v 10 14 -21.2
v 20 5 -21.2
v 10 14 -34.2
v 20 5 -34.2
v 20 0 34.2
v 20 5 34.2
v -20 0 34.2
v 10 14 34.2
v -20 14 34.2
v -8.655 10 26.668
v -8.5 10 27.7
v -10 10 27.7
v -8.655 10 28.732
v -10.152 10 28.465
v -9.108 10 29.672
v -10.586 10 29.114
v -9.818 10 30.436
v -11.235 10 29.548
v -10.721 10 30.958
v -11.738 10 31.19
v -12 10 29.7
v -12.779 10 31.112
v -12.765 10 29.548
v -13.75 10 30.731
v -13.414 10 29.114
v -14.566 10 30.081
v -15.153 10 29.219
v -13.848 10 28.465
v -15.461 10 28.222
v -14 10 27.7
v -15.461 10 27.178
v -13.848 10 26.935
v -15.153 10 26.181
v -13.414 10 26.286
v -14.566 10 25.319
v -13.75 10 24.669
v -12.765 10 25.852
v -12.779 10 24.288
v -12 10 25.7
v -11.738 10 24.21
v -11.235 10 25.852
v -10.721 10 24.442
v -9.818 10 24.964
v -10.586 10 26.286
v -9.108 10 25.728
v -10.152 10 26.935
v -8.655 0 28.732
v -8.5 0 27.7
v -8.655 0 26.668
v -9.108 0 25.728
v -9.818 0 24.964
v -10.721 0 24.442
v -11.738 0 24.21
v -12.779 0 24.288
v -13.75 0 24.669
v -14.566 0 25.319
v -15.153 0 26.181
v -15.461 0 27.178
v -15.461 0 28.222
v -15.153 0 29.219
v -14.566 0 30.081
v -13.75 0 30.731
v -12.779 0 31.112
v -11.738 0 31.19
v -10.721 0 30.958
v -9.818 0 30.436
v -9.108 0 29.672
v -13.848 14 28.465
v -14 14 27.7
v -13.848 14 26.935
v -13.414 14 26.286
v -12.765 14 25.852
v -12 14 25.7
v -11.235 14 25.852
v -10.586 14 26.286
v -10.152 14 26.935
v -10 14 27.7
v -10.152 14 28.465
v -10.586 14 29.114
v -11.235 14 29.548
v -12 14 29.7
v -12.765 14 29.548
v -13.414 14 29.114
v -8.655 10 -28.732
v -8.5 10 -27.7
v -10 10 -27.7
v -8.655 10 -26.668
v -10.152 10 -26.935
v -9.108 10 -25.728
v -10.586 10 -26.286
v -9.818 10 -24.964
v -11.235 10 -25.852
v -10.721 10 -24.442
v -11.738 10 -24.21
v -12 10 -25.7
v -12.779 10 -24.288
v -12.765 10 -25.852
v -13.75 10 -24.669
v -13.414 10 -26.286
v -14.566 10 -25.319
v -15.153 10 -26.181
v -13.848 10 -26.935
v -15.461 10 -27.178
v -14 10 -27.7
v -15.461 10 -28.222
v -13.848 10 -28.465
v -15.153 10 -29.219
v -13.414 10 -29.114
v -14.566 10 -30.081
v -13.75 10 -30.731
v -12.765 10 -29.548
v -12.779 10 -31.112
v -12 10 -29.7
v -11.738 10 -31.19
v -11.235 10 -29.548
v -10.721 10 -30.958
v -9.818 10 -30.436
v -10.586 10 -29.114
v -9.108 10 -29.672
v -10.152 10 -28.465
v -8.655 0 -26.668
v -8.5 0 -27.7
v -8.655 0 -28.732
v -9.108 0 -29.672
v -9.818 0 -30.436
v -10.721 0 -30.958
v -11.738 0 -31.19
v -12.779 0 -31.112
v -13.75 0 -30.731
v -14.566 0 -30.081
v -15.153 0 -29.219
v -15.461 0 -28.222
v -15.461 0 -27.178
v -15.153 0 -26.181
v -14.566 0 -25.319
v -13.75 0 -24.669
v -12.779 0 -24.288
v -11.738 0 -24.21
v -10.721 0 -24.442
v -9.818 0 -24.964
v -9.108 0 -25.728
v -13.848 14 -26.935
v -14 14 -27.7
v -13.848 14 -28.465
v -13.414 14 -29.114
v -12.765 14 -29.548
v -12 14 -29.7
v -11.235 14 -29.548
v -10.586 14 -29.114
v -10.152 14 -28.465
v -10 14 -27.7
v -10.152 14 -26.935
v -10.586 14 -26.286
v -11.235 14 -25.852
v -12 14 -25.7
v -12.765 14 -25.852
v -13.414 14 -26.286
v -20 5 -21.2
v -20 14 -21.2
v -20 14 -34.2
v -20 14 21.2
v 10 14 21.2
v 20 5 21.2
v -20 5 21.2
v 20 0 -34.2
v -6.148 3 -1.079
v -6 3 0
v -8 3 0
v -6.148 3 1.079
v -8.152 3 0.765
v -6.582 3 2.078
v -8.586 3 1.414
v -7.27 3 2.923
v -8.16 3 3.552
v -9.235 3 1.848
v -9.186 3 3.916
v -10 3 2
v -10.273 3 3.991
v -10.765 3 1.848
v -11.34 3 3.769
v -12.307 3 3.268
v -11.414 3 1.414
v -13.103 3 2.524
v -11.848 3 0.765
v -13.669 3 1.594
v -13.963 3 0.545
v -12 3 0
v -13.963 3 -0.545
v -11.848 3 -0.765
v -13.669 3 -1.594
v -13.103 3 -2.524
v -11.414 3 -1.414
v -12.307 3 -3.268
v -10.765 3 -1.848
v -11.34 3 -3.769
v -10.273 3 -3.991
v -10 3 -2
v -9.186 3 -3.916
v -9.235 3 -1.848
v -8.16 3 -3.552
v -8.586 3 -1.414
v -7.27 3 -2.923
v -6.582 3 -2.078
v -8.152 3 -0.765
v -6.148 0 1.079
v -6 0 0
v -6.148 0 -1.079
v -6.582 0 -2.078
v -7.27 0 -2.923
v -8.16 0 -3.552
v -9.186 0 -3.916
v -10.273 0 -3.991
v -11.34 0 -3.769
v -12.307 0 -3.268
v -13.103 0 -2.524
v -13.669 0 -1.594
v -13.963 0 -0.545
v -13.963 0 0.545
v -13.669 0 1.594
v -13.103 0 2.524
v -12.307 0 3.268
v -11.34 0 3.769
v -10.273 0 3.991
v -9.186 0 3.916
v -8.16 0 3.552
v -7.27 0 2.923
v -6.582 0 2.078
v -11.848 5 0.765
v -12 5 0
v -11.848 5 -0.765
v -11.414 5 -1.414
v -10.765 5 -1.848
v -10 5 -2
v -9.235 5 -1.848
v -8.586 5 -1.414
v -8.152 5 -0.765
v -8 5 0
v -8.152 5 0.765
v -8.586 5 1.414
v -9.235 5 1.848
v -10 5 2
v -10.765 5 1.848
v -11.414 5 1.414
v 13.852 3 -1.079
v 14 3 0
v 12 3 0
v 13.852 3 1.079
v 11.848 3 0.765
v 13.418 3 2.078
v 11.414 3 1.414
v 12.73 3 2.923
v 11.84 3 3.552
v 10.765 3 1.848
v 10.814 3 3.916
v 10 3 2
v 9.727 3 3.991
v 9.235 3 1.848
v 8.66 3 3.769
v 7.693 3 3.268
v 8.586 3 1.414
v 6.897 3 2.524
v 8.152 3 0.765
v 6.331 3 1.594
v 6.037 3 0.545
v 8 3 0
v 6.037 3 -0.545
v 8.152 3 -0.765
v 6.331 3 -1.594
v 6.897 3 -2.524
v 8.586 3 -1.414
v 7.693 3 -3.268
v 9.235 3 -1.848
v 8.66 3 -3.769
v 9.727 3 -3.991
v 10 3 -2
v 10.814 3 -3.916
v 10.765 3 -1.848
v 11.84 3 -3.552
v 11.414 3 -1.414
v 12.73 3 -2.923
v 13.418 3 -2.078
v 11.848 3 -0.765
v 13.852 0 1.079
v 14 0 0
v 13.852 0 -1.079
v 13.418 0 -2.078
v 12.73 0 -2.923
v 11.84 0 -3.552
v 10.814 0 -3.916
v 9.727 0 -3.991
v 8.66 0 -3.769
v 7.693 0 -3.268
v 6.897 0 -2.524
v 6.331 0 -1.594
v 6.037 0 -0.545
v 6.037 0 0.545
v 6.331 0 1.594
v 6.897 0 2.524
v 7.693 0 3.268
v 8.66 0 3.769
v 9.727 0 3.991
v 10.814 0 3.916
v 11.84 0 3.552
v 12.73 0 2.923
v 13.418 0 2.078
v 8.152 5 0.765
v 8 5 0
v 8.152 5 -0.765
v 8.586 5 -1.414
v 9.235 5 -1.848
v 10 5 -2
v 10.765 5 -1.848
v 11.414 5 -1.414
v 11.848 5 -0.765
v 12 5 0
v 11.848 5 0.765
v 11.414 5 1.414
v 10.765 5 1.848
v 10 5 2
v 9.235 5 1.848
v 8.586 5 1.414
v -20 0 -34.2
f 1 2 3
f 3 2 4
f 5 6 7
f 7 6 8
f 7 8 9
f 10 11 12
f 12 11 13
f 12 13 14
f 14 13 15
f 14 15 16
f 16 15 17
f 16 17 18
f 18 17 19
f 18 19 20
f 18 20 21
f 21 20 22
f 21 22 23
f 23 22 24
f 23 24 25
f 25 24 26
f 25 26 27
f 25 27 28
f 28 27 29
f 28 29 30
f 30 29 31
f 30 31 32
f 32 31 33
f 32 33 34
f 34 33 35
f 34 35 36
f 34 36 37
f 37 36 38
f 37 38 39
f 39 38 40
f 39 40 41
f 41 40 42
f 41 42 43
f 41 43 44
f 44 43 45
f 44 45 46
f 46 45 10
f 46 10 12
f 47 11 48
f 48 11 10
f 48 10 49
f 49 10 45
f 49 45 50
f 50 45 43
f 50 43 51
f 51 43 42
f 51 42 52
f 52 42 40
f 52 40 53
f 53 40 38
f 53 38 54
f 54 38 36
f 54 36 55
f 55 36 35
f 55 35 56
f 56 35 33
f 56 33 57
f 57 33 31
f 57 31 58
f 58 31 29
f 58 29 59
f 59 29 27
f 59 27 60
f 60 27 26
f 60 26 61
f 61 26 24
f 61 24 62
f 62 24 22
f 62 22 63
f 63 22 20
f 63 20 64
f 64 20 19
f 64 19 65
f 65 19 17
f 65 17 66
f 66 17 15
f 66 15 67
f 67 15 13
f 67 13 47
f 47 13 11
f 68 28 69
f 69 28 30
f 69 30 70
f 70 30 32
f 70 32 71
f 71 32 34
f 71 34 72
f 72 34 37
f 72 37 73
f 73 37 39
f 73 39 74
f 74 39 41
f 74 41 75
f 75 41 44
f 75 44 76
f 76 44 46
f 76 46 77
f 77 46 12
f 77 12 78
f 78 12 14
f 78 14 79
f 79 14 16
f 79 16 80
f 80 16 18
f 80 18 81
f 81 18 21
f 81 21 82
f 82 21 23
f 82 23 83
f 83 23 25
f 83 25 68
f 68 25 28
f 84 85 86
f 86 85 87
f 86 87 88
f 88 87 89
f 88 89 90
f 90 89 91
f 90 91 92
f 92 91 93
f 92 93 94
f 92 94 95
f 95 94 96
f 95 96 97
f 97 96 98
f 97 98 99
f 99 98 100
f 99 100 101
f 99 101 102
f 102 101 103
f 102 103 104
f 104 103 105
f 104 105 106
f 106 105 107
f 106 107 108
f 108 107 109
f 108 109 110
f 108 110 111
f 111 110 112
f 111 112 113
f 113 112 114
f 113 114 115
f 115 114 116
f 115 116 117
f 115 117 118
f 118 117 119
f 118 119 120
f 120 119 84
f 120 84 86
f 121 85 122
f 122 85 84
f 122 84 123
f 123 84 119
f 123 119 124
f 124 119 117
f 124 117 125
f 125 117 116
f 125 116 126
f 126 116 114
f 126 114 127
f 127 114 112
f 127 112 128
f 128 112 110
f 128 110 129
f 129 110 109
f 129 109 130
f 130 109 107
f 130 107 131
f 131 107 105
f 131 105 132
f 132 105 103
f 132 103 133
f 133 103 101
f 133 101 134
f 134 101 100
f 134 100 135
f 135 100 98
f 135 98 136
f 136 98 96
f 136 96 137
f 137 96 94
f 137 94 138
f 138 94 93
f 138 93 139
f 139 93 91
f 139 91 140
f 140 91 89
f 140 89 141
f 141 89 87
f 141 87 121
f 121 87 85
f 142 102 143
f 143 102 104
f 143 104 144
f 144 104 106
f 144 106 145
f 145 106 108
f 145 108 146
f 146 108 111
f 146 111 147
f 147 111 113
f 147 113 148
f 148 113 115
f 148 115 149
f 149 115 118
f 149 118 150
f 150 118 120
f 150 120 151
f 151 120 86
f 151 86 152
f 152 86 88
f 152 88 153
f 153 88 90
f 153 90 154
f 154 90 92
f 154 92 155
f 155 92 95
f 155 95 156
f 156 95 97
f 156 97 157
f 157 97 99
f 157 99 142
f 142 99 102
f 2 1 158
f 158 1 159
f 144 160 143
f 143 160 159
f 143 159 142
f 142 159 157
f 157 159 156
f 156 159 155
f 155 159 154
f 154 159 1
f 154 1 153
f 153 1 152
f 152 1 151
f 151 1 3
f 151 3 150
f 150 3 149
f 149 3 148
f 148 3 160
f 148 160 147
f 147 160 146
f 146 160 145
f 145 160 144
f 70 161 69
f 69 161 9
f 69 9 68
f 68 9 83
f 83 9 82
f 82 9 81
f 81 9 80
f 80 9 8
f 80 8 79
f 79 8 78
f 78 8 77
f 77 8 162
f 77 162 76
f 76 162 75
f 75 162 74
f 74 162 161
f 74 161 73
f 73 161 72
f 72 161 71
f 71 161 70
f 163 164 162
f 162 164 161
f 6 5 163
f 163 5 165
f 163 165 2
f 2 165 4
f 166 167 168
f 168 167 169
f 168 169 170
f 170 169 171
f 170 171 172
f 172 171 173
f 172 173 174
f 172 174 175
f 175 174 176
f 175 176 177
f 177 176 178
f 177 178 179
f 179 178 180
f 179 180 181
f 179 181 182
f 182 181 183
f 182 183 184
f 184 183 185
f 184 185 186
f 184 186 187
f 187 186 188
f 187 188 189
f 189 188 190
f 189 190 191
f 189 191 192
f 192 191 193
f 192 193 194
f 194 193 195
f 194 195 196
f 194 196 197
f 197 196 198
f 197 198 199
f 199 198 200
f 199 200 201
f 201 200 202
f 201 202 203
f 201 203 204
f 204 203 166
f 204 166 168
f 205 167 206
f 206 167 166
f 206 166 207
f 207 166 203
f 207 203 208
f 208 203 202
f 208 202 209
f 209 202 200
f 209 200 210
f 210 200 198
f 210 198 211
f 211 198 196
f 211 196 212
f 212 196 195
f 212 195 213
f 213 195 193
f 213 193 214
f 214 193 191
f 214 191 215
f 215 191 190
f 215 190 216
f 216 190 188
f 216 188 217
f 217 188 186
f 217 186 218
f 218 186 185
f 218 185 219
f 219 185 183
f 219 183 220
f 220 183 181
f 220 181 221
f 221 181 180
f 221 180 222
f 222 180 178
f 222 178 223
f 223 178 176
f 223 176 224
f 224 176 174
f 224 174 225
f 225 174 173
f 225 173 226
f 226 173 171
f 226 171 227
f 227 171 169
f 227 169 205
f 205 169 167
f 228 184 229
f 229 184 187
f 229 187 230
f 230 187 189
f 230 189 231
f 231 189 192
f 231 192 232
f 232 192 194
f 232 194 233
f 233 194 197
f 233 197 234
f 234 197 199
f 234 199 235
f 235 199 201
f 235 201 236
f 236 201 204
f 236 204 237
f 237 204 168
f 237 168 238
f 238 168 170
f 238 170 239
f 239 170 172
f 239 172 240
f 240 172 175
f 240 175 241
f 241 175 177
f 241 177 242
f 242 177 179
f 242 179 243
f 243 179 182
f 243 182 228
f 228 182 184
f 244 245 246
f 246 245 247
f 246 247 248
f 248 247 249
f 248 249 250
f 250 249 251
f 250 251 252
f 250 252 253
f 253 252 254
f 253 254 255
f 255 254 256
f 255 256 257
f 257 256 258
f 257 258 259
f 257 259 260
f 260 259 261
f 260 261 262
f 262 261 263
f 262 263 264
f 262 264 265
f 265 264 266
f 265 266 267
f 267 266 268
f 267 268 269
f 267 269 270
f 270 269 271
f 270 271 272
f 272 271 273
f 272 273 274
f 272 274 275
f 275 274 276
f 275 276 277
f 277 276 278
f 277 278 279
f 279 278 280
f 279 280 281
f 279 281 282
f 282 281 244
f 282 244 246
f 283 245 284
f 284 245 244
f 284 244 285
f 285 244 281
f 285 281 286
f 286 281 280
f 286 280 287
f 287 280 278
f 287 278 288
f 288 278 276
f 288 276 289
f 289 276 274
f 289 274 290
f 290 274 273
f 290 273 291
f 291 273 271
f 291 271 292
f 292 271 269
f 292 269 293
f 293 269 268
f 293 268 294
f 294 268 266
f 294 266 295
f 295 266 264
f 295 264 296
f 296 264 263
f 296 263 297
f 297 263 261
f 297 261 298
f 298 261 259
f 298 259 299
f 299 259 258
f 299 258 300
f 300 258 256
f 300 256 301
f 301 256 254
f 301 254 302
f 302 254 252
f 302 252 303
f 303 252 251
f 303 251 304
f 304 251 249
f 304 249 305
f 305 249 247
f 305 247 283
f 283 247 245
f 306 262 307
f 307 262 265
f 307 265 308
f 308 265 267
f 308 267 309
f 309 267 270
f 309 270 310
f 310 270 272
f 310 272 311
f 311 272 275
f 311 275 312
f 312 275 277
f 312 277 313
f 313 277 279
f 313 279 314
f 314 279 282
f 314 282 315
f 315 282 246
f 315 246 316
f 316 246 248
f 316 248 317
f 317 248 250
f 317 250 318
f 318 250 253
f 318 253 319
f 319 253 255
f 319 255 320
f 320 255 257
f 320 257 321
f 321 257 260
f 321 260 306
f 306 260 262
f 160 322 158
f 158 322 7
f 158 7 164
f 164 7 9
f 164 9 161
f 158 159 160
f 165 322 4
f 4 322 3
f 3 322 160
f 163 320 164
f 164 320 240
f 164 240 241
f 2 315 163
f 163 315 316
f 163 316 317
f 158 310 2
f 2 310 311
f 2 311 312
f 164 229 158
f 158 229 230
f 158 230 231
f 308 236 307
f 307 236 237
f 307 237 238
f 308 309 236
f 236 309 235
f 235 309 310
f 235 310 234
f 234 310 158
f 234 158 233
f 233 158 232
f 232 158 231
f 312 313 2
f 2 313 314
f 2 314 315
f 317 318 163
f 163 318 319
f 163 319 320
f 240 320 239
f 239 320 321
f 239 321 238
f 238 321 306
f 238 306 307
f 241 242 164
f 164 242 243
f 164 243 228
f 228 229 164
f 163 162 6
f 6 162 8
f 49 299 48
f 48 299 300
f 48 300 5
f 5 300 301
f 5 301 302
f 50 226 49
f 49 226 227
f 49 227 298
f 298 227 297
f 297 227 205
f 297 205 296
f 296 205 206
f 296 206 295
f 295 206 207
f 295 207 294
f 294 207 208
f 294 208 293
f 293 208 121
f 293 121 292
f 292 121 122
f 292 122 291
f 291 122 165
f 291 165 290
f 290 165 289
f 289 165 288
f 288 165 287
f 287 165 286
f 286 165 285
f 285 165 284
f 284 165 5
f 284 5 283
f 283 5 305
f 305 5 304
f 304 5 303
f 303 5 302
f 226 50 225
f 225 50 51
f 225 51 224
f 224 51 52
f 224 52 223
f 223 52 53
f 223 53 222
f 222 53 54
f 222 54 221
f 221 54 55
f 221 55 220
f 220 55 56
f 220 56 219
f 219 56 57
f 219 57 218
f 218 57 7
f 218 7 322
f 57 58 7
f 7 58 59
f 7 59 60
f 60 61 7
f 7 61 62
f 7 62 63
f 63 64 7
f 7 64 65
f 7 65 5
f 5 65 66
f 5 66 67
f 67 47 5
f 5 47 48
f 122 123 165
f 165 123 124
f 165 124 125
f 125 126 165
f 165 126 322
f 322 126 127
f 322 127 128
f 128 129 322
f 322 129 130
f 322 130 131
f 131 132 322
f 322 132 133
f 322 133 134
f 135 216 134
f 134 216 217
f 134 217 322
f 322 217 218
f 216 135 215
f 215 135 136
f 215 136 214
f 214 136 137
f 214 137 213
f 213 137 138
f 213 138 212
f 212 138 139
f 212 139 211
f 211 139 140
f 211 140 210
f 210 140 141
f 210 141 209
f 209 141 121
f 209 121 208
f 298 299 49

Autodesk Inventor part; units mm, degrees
ref_plane "YZ Plane" through (0, 0, 0) normal (1, 0, 0) x (0, 1, 0)
ref_plane "XZ Plane" through (0, 0, 0) normal (0, 1, 0) x (-1, 0, 0)
ref_plane "XY Plane" through (0, 0, 0) normal (0, 0, 1) x (1, 0, 0)
sketch "Skizze1" plane through (0, 0, 0) normal (0, 1, 0) x (-1, 0, 0)
  line L0 (-20, 34.2) -> (20, 34.2)
  line L1 (20, 34.2) -> (20, -34.2)
  line L2 (20, -34.2) -> (-20, -34.2)
  line L3 (-20, -34.2) -> (-20, 34.2)
  line L4 (-20, 34.2) -> (20, -34.2) construction
  line L5 (20, 34.2) -> (-20, -34.2) construction
  point P0 (0, 0)
  dimension "d0" = 40
  dimension "d1" = 68.4
extrude "Extrusion1" add sketch "Skizze1" along normal blind 5
sketch "Skizze5" plane through (0, 0, 0) normal (0, -1, 0) x (1, 0, 0)
  line L0 (20, 34.2) -> (-20, 34.2) projected
  line L1 (-20, 34.2) -> (-20, -34.2) projected
  line L2 (-20, -34.2) -> (20, -34.2) projected
  line L3 (20, -34.2) -> (20, 34.2) projected
  line L4 (32.3204, 0) -> (-38.6965, 0) construction
  point P0 (0, 0)
  point P1 (-10, 0)
  point P2 (10, 0)
  dimension "d32" = 10
  dimension "d33" = 20
hole "Bohrung3" at (-10, 0, 0) at (10, 0, 0) direction (0, 1, 0) diameter 4 end through all counterbore diameter 8 counterbore depth 3
sketch "Skizze6" plane through (0, 5, 0) normal (0, 1, 0) x (1, 0, 0)
  circle A0 centre (-10, 0) radius 2 projected
  circle A1 centre (10, 0) radius 2 projected
  line L0 (-20, -34.2) -> (20, -34.2) projected
  line L1 (20, -34.2) -> (20, 34.2) projected
  line L2 (20, 34.2) -> (-20, 34.2) projected
  line L3 (-20, 34.2) -> (-20, -34.2) projected
  line L4 (-20, 34.2) -> (10, 34.2)
  line L5 (10, 34.2) -> (10, 21.2)
  line L6 (10, 21.2) -> (-20, 21.2)
  line L7 (-20, 21.2) -> (-20, 34.2)
  line L8 (-35, 0) -> (35, 0) projected
  line L9 (-20, -34.2) -> (10, -34.2)
  line L10 (10, -34.2) -> (10, -21.2)
  line L11 (10, -21.2) -> (-20, -21.2)
  line L12 (-20, -21.2) -> (-20, -34.2)
  point P0 (0, 0)
  dimension "d41" = 30
  dimension "d42" = 13
extrude "Extrusion3" add sketch "Skizze6" along normal blind 9 contours L3 L2 L5 L6 | L11 L10 L0 L3
sketch "Skizze8" plane through (0, 0, 0) normal (0, -1, 0) x (1, 0, 0)
  line L0 (-20, 34.2) -> (10, 34.2) projected
  line L1 (10, 34.2) -> (10, 21.2) projected
  line L2 (10, 21.2) -> (-20, 21.2) projected
  line L3 (-20, 21.2) -> (-20, 34.2) projected
  line L4 (-20, -34.2) -> (-20, -21.2) projected
  line L5 (-20, -21.2) -> (10, -21.2) projected
  line L6 (10, -21.2) -> (10, -34.2) projected
  line L7 (10, -34.2) -> (-20, -34.2) projected
  line L8 (-20, 21.2) -> (-20, 34.2) projected
  line L9 (-20, 27.7) -> (10, 27.7)
  line L10 (-20, 34.2) -> (-20, -34.2) projected
  line L11 (10, -21.2) -> (10, -34.2) projected
  line L12 (10, -27.7) -> (-20, -27.7)
  point P0 (0, 0)
  point P1 (-12, 27.7)
  point P2 (-12, -27.7)
  dimension "d46" = 8
  dimension "d47" = 8
hole "Bohrung4" at (-12, 0, 27.7) at (-12, 0, -27.7) direction (0, 1, 0) diameter 4 end through all counterbore diameter 7 counterbore depth 10
sketch "Skizze9" plane through (20, 0, -34.2) normal (0, 0, -1) x (-1, 0, 0)
  line L0 (40, 0) -> (0, 0) projected
  line L1 (40, 0) -> (40, 14) projected
  line L2 (10, 14) -> (40, 14) projected
  line L3 (10, 5) -> (10, 14) projected
  line L4 (0, 5) -> (10, 5) projected
  line L5 (0, 0) -> (0, 5) projected
  line L6 (0, 5) -> (10, 5) projected
  line L7 (0, 5) -> (10, 14)
  point P0 (20, 0)
extrude "Extrusion4" add sketch "Skizze9" against normal up to surface (13 mm away) contours L7 L3 L4
sketch "Skizze11" plane through (-20, 0, 34.2) normal (0, 0, 1) x (1, 0, 0)
  line L0 (30, 5) -> (30, 14) projected
  line L1 (30, 5) -> (40, 5) projected
  line L2 (30, 14) -> (40, 5) projected
  line L3 (40, 0) -> (40, 5) projected
  line L4 (30, 14) -> (40, 5)
  point P0 (20, 0)
extrude "Extrusion5" add sketch "Skizze11" against normal up to surface (13 mm away)
properties part number "Backplate"
